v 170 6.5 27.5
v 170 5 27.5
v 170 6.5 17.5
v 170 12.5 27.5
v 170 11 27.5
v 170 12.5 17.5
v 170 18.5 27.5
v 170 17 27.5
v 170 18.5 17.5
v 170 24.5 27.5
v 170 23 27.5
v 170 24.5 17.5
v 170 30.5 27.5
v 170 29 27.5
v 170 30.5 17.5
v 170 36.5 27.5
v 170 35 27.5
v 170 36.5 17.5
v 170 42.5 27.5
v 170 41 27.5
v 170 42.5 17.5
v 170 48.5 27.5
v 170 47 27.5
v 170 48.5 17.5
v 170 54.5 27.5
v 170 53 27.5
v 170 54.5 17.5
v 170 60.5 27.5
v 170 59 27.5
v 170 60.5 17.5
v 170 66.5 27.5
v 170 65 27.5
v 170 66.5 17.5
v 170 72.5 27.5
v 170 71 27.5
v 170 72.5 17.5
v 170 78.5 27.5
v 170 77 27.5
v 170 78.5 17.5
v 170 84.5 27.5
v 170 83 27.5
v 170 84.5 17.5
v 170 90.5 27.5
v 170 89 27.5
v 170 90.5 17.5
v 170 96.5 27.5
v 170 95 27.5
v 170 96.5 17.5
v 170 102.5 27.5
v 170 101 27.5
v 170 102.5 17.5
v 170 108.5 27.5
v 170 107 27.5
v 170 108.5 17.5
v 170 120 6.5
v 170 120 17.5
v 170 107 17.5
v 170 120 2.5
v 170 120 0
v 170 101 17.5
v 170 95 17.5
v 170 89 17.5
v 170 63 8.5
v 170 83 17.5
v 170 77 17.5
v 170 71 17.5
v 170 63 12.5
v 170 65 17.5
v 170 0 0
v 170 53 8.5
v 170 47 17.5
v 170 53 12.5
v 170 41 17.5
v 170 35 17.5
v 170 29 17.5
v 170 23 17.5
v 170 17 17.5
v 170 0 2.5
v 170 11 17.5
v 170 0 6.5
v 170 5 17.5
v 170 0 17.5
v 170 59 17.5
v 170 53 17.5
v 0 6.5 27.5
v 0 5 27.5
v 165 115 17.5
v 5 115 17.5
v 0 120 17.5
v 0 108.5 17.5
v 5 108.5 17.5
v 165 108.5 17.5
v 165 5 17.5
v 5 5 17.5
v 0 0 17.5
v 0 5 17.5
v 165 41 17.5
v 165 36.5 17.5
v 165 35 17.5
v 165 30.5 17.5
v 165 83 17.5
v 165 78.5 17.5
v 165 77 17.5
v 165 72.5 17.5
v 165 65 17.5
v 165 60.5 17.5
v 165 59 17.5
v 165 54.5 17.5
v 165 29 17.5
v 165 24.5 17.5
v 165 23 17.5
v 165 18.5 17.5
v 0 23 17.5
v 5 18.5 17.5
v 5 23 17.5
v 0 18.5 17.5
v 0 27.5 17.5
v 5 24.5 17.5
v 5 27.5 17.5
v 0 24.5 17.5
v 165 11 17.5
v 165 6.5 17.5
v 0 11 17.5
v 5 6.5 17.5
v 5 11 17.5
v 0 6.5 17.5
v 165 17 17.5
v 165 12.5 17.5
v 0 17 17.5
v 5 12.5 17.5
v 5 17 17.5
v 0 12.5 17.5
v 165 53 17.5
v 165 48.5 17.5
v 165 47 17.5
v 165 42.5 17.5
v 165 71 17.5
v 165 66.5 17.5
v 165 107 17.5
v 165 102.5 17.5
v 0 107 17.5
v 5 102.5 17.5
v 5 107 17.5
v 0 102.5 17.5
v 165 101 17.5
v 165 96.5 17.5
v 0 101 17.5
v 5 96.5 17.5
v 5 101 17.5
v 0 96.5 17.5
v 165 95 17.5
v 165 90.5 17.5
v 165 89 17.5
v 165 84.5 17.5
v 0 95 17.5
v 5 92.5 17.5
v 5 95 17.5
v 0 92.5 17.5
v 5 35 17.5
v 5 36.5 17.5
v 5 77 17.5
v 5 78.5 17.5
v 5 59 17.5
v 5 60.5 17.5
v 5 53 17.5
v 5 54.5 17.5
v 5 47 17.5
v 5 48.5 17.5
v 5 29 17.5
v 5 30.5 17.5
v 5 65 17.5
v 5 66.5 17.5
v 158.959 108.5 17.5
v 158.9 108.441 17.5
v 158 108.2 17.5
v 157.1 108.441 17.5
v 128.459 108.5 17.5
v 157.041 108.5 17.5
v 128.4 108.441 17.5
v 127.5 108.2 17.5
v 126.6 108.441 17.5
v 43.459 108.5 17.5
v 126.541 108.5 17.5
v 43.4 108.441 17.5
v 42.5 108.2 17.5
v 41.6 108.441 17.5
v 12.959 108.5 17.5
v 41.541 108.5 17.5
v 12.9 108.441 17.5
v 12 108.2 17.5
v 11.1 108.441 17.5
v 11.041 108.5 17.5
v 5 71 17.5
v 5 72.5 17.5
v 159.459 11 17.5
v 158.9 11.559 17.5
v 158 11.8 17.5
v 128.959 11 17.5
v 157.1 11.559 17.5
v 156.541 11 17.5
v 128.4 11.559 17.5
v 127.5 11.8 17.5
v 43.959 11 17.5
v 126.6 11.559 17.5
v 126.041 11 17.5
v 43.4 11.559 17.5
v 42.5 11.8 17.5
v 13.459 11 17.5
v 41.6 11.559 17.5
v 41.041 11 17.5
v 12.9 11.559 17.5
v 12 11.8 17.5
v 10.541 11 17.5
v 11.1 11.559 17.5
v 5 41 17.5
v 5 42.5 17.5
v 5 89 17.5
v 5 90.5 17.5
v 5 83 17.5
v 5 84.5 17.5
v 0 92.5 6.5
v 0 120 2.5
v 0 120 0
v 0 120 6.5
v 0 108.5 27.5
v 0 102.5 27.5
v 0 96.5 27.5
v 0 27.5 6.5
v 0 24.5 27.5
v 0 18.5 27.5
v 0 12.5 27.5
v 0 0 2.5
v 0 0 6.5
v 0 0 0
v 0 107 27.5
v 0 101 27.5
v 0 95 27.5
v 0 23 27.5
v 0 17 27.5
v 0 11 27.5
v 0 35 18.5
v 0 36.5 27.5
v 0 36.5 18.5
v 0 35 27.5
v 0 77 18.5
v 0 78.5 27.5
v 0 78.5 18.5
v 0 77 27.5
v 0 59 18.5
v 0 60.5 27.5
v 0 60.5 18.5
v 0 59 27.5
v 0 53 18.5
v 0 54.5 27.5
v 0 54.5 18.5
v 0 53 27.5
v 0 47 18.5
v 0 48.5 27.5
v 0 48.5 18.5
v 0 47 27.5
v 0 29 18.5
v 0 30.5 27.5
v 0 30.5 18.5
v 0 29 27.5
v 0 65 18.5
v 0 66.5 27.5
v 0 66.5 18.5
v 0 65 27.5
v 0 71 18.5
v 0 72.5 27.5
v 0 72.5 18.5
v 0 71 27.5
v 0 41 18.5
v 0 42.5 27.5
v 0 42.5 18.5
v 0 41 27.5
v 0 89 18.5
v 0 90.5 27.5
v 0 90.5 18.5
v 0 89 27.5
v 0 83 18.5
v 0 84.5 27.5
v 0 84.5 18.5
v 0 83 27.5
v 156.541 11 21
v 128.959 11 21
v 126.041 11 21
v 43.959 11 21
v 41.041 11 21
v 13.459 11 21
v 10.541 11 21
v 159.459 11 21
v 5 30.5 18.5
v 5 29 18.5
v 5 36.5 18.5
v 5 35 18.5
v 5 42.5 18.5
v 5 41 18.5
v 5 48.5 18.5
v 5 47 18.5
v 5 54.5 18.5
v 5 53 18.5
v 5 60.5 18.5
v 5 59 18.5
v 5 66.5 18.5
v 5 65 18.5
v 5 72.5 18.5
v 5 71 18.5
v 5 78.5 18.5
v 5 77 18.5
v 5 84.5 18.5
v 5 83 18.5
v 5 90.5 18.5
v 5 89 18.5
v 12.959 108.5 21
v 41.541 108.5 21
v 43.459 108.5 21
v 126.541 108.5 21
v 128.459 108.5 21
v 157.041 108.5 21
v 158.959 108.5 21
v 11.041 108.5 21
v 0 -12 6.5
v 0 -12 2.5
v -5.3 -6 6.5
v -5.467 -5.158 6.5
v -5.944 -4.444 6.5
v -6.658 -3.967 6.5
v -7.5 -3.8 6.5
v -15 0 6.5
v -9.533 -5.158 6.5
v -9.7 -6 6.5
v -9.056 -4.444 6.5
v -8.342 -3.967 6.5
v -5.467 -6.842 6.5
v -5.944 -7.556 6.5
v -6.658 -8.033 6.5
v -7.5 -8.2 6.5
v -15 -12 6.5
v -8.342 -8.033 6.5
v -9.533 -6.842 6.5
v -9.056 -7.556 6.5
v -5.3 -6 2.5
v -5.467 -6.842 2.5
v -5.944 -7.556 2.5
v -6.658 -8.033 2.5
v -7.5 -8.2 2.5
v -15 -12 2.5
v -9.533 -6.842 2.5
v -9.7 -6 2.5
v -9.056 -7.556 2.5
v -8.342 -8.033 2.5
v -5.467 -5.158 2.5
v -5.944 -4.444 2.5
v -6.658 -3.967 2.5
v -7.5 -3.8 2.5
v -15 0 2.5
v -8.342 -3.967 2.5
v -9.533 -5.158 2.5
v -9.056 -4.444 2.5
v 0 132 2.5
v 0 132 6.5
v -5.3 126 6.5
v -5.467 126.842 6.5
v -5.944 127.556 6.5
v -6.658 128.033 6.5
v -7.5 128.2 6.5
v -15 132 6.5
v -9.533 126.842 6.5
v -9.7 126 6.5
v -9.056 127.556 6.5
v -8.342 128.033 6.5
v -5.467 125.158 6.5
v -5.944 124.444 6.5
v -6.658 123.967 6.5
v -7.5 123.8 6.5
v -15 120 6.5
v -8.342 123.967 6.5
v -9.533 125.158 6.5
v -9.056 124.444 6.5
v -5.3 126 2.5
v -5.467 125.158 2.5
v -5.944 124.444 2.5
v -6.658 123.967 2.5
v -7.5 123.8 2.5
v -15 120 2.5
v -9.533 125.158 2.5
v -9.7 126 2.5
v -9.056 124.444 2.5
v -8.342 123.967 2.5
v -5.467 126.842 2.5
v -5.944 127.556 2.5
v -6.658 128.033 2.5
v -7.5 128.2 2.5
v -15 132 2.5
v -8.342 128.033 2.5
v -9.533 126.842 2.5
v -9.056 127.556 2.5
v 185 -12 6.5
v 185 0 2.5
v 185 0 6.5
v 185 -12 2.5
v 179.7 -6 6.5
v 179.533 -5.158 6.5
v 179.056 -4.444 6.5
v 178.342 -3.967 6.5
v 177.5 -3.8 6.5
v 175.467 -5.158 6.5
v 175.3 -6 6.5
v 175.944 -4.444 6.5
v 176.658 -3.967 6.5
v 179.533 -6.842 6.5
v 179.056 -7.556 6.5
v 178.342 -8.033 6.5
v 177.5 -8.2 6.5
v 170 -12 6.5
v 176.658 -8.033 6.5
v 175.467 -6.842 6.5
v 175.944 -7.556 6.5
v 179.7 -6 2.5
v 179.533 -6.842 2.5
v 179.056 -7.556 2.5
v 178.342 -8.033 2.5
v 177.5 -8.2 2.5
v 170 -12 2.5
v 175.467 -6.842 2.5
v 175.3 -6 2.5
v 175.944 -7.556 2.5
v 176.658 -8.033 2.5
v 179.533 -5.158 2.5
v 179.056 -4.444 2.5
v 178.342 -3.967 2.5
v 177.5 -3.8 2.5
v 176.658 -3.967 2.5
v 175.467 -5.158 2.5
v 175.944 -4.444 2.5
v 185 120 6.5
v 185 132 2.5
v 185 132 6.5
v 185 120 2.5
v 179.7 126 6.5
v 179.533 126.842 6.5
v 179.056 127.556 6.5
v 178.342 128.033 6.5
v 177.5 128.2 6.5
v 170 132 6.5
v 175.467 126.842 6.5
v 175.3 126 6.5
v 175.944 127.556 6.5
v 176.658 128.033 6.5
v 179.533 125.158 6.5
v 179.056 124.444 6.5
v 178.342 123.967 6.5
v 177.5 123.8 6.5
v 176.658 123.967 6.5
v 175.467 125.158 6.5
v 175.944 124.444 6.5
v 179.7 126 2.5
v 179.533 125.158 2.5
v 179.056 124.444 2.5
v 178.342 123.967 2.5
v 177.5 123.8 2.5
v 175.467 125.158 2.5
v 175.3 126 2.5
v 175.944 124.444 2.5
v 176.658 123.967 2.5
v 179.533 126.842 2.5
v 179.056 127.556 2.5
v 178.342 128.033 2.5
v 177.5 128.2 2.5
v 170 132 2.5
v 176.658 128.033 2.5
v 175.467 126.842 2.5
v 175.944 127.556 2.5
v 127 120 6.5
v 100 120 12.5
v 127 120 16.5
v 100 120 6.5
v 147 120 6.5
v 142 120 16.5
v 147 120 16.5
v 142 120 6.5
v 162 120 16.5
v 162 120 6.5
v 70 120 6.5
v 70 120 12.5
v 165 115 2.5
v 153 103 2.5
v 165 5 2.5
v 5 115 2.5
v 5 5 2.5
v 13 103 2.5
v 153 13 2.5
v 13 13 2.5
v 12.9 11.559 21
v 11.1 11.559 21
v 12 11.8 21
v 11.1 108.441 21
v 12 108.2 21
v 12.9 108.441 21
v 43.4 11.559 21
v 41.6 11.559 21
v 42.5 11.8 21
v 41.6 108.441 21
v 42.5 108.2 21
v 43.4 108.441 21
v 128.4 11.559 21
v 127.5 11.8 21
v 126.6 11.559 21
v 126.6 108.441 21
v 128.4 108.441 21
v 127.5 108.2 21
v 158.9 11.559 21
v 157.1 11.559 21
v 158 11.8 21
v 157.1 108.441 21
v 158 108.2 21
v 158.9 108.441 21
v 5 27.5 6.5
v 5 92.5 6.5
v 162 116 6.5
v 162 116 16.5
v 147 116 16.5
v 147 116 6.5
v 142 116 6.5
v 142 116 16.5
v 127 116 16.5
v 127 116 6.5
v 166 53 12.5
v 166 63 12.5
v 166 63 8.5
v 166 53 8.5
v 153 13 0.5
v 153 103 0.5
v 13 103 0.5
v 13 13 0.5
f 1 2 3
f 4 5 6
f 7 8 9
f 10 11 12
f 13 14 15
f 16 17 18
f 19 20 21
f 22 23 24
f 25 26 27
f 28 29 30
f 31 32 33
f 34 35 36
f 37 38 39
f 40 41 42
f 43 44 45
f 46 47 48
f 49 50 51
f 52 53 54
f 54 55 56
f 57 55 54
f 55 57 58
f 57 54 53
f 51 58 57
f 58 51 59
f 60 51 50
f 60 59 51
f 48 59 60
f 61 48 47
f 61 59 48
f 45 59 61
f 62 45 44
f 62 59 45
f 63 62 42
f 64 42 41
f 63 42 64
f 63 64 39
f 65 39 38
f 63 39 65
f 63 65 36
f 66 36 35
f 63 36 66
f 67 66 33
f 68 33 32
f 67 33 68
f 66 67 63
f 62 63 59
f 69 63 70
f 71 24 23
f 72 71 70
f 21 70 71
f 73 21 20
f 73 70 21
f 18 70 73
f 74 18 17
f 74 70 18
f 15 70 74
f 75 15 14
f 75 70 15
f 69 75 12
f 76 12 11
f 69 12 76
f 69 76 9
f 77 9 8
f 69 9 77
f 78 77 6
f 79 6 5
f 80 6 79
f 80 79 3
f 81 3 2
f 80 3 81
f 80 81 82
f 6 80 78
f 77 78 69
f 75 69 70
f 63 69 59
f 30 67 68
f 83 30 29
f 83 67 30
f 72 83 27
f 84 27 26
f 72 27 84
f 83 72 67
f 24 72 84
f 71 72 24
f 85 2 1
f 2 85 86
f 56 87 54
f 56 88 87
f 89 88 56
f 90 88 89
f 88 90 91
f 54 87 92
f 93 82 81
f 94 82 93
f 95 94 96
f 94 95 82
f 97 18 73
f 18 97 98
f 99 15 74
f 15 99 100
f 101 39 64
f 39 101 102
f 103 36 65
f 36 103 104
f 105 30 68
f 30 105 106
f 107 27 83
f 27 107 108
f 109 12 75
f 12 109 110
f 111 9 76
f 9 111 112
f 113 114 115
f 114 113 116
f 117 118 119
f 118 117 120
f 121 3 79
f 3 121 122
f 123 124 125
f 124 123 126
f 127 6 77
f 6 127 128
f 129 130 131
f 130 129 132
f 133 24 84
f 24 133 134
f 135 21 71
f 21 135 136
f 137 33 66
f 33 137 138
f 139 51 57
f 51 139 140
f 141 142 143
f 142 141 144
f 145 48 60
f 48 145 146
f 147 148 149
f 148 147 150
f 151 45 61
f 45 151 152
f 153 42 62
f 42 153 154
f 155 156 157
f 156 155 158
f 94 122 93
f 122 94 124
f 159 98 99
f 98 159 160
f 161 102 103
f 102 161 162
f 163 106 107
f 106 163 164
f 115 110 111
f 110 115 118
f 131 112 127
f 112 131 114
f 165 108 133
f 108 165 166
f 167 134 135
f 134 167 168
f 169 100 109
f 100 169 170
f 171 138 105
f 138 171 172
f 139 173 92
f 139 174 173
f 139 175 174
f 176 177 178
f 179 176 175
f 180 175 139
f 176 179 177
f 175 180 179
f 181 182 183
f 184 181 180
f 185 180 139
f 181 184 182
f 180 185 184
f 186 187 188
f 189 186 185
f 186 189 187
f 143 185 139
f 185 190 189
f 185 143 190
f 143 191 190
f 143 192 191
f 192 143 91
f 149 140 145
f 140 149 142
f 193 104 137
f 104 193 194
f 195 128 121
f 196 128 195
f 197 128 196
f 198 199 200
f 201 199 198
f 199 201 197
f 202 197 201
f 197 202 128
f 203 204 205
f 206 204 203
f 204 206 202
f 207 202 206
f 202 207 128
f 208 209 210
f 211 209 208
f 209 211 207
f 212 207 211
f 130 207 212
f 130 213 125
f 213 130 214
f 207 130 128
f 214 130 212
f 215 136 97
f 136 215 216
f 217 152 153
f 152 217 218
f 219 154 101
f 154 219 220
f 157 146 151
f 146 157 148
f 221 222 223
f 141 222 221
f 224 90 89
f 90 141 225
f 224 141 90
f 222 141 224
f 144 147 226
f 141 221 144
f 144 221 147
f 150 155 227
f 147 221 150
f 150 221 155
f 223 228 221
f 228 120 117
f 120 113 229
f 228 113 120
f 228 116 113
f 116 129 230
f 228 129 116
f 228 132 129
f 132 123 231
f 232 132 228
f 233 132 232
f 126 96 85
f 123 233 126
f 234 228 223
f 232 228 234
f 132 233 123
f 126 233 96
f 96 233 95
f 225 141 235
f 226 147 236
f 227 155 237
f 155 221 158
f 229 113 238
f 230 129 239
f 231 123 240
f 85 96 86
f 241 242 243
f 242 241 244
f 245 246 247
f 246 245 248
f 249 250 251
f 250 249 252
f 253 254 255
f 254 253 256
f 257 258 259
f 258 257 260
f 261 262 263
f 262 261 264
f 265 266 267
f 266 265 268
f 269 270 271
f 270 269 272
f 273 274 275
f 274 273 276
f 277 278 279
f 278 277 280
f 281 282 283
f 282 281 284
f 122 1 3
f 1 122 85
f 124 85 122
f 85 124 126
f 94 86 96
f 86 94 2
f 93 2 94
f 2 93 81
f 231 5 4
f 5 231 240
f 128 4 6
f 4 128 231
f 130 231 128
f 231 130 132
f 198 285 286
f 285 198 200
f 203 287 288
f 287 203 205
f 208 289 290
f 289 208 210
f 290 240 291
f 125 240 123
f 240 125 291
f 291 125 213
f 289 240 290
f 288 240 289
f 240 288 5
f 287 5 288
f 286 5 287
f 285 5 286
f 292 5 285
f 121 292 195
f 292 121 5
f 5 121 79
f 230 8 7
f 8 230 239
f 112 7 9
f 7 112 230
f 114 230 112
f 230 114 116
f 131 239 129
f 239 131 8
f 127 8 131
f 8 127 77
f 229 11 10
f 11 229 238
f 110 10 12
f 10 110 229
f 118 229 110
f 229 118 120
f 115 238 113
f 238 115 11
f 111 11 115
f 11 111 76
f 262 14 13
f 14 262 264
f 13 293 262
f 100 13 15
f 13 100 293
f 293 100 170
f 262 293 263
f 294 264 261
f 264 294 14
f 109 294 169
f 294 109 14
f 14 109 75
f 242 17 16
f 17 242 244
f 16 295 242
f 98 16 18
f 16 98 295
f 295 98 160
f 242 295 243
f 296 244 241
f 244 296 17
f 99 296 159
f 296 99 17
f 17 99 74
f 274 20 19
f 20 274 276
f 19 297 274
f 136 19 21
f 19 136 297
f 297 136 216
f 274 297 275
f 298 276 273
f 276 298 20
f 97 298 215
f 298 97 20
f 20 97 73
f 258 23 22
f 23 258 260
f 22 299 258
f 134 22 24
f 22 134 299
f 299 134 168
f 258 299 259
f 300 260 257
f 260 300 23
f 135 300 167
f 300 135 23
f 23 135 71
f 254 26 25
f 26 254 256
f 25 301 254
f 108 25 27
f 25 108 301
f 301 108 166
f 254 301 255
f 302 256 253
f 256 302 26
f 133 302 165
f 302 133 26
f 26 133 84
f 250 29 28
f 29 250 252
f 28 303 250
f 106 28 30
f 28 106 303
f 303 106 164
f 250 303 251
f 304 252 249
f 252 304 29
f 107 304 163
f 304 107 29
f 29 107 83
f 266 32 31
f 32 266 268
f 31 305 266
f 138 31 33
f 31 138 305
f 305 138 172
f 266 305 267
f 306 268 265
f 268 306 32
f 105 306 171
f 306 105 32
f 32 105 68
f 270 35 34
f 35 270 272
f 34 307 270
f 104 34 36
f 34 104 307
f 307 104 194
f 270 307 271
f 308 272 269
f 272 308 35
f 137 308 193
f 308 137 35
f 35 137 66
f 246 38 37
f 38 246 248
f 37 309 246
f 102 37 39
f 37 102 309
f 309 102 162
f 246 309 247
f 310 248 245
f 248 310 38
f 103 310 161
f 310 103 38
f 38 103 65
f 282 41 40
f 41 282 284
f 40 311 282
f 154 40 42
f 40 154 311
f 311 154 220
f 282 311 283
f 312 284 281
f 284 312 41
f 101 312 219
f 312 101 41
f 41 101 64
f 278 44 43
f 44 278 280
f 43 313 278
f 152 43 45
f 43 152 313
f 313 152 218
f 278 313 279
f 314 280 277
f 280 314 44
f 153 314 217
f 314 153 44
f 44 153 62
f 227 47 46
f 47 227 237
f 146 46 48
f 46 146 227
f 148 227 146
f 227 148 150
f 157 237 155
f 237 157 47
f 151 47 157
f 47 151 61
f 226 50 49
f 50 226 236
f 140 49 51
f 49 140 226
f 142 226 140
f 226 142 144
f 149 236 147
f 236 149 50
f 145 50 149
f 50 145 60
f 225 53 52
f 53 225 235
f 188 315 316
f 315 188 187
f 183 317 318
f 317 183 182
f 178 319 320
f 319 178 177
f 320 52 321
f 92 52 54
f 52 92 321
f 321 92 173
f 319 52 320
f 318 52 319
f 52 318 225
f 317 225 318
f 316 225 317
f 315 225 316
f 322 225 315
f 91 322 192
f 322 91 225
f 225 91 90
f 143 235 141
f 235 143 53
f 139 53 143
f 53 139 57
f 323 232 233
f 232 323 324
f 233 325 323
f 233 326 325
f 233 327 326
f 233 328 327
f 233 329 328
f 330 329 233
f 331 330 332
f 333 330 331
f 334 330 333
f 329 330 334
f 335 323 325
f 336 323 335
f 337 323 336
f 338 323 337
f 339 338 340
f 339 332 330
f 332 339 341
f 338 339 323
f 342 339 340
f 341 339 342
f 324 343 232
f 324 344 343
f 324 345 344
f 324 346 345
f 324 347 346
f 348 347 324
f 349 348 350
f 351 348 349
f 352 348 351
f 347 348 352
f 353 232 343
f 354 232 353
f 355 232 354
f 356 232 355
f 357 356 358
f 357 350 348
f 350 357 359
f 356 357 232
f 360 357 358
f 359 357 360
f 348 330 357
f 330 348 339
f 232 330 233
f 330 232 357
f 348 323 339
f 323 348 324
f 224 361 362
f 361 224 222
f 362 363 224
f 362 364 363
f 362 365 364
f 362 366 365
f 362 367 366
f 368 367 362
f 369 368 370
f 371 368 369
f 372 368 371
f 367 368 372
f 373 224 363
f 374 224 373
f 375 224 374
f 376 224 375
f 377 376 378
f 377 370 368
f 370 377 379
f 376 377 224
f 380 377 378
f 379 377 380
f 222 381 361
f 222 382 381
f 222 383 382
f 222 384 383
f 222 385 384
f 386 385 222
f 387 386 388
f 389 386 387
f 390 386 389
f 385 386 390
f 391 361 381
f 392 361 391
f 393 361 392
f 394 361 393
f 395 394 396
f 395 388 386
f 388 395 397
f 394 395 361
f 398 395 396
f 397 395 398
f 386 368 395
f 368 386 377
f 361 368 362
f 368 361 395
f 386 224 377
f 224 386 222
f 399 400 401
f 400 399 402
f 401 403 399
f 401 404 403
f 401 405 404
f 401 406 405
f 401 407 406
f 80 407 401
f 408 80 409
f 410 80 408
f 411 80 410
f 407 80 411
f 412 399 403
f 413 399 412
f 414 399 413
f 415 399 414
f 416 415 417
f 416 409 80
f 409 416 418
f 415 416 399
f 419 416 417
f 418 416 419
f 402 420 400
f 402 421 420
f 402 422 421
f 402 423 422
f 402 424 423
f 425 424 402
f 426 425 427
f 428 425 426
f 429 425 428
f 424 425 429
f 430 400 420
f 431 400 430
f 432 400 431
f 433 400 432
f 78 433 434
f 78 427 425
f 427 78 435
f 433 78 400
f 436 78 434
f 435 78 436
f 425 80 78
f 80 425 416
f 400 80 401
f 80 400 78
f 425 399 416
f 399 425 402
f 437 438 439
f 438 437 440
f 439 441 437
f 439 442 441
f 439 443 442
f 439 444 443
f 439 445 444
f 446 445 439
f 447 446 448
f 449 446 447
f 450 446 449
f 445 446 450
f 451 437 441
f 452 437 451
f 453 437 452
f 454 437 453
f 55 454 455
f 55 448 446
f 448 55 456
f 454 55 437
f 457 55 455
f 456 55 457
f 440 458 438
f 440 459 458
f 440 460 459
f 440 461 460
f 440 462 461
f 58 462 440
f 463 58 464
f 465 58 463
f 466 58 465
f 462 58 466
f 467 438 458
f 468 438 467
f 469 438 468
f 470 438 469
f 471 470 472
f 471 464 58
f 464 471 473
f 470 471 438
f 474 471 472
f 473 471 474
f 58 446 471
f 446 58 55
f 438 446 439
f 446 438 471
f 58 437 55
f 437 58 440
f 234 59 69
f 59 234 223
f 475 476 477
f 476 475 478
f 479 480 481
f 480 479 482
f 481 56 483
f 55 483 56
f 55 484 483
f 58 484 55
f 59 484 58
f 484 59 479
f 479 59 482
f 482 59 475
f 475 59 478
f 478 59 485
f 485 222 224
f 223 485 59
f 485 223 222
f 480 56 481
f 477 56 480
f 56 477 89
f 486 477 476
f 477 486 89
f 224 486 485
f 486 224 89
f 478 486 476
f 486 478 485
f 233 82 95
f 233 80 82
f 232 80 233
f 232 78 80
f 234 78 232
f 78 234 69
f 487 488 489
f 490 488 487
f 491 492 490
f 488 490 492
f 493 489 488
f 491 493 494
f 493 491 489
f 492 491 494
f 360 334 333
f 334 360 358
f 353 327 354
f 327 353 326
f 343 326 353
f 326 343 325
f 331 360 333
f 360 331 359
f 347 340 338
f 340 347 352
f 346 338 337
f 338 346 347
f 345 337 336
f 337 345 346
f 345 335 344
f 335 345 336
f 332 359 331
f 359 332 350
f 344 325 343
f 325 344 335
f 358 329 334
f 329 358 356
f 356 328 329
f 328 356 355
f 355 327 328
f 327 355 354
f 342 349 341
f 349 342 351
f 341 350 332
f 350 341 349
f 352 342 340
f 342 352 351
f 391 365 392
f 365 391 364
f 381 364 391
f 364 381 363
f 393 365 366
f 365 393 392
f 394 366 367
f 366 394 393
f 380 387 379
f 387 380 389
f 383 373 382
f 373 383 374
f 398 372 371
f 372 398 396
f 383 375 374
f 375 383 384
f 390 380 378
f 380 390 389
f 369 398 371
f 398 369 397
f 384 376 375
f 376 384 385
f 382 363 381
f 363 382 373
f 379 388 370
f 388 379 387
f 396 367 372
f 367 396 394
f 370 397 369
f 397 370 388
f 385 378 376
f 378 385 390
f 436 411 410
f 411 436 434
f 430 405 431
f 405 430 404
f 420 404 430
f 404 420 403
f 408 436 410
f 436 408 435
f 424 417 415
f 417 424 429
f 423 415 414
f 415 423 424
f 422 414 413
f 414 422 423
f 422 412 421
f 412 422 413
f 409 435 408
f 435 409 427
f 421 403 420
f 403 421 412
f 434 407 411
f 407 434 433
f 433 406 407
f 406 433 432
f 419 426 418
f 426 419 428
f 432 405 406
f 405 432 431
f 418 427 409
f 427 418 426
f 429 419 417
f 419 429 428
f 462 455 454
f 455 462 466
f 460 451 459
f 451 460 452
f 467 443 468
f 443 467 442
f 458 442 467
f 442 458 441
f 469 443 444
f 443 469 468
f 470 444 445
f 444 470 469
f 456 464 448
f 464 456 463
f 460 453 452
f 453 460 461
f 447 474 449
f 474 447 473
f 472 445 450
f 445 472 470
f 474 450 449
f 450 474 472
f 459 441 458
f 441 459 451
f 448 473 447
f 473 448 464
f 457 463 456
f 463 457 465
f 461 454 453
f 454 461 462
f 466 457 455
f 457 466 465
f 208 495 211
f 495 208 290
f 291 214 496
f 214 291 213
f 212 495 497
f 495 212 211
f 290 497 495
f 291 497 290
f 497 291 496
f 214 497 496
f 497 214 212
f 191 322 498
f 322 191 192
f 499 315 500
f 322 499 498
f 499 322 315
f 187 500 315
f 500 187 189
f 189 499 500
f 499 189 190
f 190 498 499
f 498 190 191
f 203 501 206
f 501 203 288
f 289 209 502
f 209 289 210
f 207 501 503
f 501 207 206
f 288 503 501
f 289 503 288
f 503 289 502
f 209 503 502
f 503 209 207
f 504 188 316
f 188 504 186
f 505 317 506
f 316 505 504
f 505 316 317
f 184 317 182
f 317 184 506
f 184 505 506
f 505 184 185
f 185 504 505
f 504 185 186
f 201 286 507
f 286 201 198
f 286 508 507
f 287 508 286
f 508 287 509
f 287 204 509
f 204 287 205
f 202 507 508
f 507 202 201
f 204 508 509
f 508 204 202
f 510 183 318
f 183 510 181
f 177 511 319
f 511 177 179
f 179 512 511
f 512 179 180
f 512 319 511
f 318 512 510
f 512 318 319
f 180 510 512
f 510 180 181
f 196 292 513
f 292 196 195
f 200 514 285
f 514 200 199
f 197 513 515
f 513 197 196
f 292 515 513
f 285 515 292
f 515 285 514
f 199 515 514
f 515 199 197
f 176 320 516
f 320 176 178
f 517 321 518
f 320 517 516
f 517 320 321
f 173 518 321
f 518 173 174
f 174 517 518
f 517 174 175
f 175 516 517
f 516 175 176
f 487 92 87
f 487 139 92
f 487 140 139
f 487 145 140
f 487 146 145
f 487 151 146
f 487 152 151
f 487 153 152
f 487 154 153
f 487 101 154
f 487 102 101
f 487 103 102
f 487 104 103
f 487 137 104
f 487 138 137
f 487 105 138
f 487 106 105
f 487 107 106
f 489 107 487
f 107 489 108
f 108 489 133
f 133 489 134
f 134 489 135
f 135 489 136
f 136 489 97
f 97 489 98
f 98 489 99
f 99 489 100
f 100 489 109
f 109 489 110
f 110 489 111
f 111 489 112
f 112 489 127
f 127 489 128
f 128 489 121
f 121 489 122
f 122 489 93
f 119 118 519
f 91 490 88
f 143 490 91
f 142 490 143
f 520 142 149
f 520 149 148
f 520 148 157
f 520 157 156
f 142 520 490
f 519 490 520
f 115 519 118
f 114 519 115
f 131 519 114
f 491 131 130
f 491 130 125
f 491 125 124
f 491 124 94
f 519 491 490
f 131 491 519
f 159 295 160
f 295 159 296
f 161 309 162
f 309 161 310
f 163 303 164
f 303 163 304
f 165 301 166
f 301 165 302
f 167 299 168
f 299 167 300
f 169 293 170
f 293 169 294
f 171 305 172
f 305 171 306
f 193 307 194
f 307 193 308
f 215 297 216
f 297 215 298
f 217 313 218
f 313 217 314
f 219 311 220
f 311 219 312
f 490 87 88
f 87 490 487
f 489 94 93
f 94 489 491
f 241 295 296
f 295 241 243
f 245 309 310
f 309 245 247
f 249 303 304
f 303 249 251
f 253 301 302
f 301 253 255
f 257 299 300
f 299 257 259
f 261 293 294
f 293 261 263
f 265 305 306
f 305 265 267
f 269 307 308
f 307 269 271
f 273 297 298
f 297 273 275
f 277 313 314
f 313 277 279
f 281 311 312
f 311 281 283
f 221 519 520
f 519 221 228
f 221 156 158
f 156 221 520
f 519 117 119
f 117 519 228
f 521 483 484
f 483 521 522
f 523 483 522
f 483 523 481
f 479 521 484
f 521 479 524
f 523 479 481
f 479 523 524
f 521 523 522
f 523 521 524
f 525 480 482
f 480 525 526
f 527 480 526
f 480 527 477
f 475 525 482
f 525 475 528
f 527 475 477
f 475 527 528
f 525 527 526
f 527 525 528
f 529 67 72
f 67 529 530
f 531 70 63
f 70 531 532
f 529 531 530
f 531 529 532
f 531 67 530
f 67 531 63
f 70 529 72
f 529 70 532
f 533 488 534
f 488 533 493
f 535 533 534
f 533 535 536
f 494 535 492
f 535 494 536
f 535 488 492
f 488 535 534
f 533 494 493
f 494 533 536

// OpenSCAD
// ==============================================================================
// 7100CPT ECU — Enclosure Design 2: "Slim Racing"
// Extruded aluminum profile with integral heat sink fins
// Low-profile: ideal for engine bay or cabin mounting
// ==============================================================================
// PCB: 160mm x 110mm x 1.6mm
// Enclosure: 180mm x 125mm x 24mm (low profile!)
// ==============================================================================

// -- Parameters --
pcb_x = 160;
pcb_y = 110;
pcb_z = 1.6;

// Envelope
clearance = 3;           // gap around PCB
base_thick = 2.5;        // bottom wall
lid_thick = 1.5;         // top cover
fin_height = 10;         // heat sink fin height
fin_pitch = 6;           // spacing between fins
fin_thick = 1.5;         // fin wall thickness
inner_h = 15;            // internal height (PCB + clearance)

encl_x = pcb_x + 2*clearance + 4;  // 170
encl_y = pcb_y + 2*clearance + 4;  // 120
encl_z = base_thick + inner_h + lid_thick;  // 19mm + fins

// Number of fins
num_fins = floor((encl_y - 10) / fin_pitch);

// Mounting tabs
tab_x = 15;
tab_y = 12;
tab_h = 4;

// Screws
m4_r = 2.2;

// Connector cutouts (matching classic box)
main_conn_w = 65;
main_conn_h = 12;
can_conn_w = 15;
can_conn_h = 10;
usb_c_w = 10;
usb_c_h = 4;

// ==============================================================================
// MODULE: Base with heat sink fins
// ==============================================================================
module base_with_fins() {
    difference() {
        union() {
            // Extruded base plate
            cube([encl_x, encl_y, base_thick + inner_h]);

            // Heat sink fins (on bottom, facing away from PCB)
            // Fins run lengthwise (X axis)
            for (i = [0:num_fins-1]) {
                translate([0, 5 + i * fin_pitch, base_thick + inner_h])
                    cube([encl_x, fin_thick, fin_height]);
            }

            // Mounting tabs (4 corners, protruding)
            for (x = [-tab_x, encl_x]) {
                for (y = [-tab_y, encl_y]) {
                    translate([x, y, base_thick])
                        cube([tab_x, tab_y, tab_h]);
                }
            }
        }

        // Internal cavity
        translate([2 + clearance, 2 + clearance, base_thick])
            cube([pcb_x, pcb_y, inner_h]);

        // Standoff posts (M3 threaded inserts)
        for (x = [2 + clearance + 6, 2 + clearance + pcb_x - 6]) {
            for (y = [2 + clearance + 6, 2 + clearance + pcb_y - 6]) {
                translate([x, y, base_thick])
                    cylinder(h = 5, r = 2.5, $fn = 16);
                translate([x, y, base_thick])
                    cylinder(h = 7, r = 1.5, $fn = 16);
            }
        }

        // Main connector cutout (left side)
        translate([0, (encl_y - main_conn_w) / 2, base_thick + 4])
            cube([clearance + 2, main_conn_w, main_conn_h]);

        // CAN0 cutout (top-right)
        translate([encl_x - clearance - can_conn_w - 5, encl_y - clearance - 1, base_thick + 4])
            cube([can_conn_w, clearance + 2, can_conn_h]);

        // CAN1 cutout
        translate([encl_x - clearance - can_conn_w - 25, encl_y - clearance - 1, base_thick + 4])
            cube([can_conn_w, clearance + 2, can_conn_h]);

        // USB-C cutout (right side)
        translate([encl_x - clearance - 1, clearance + 50, base_thick + 6])
            cube([clearance + 2, usb_c_w, usb_c_h]);

        // Mounting screw holes (M4 in tabs)
        for (x = [-tab_x, encl_x]) {
            for (y = [-tab_y, encl_y]) {
                translate([x + tab_x/2, y + tab_y/2, base_thick])
                    cylinder(h = tab_h + 2, r = m4_r, $fn = 16);
            }
        }

        // Lid screw holes (M2.5, 8 around perimeter)
        for (x = [12, encl_x/4, 3*encl_x/4, encl_x - 12]) {
            for (y = [10, encl_y - 10]) {
                translate([x, y, base_thick + inner_h]) {
                    cylinder(h = lid_thick + 2, r = 1.8, $fn = 12);
                }
            }
        }

        // Weight reduction pocket in base
        translate([clearance + 10, clearance + 10, 0.5])
            cube([pcb_x - 20, pcb_y - 20, base_thick - 0.5]);

        // Brand engraving on side
        translate([encl_x/2 - 15, encl_y, base_thick + 4])
            cube([30, 1, 6]);
    }
}

// ==============================================================================
// MODULE: Lid (screwless clip-on or screw-down)
// ==============================================================================
module lid() {
    difference() {
        translate([0, 0, base_thick + inner_h])
            cube([encl_x, encl_y, lid_thick]);

        // Screw holes
        for (x = [12, encl_x/4, 3*encl_x/4, encl_x - 12]) {
            for (y = [10, encl_y - 10]) {
                translate([x, y, base_thick + inner_h - 0.1])
                    cylinder(h = lid_thick + 0.2, r = 2.2, $fn = 12);  // M2.5 clearance
            }
        }
    }
}

// ==============================================================================
// Full Assembly
// ==============================================================================
module slim_racing_assembly() {
    color("silver") base_with_fins();
    %translate([0, 0, 0]) color([0.3, 0.3, 0.3, 0.3]) lid();
}

slim_racing_assembly();
